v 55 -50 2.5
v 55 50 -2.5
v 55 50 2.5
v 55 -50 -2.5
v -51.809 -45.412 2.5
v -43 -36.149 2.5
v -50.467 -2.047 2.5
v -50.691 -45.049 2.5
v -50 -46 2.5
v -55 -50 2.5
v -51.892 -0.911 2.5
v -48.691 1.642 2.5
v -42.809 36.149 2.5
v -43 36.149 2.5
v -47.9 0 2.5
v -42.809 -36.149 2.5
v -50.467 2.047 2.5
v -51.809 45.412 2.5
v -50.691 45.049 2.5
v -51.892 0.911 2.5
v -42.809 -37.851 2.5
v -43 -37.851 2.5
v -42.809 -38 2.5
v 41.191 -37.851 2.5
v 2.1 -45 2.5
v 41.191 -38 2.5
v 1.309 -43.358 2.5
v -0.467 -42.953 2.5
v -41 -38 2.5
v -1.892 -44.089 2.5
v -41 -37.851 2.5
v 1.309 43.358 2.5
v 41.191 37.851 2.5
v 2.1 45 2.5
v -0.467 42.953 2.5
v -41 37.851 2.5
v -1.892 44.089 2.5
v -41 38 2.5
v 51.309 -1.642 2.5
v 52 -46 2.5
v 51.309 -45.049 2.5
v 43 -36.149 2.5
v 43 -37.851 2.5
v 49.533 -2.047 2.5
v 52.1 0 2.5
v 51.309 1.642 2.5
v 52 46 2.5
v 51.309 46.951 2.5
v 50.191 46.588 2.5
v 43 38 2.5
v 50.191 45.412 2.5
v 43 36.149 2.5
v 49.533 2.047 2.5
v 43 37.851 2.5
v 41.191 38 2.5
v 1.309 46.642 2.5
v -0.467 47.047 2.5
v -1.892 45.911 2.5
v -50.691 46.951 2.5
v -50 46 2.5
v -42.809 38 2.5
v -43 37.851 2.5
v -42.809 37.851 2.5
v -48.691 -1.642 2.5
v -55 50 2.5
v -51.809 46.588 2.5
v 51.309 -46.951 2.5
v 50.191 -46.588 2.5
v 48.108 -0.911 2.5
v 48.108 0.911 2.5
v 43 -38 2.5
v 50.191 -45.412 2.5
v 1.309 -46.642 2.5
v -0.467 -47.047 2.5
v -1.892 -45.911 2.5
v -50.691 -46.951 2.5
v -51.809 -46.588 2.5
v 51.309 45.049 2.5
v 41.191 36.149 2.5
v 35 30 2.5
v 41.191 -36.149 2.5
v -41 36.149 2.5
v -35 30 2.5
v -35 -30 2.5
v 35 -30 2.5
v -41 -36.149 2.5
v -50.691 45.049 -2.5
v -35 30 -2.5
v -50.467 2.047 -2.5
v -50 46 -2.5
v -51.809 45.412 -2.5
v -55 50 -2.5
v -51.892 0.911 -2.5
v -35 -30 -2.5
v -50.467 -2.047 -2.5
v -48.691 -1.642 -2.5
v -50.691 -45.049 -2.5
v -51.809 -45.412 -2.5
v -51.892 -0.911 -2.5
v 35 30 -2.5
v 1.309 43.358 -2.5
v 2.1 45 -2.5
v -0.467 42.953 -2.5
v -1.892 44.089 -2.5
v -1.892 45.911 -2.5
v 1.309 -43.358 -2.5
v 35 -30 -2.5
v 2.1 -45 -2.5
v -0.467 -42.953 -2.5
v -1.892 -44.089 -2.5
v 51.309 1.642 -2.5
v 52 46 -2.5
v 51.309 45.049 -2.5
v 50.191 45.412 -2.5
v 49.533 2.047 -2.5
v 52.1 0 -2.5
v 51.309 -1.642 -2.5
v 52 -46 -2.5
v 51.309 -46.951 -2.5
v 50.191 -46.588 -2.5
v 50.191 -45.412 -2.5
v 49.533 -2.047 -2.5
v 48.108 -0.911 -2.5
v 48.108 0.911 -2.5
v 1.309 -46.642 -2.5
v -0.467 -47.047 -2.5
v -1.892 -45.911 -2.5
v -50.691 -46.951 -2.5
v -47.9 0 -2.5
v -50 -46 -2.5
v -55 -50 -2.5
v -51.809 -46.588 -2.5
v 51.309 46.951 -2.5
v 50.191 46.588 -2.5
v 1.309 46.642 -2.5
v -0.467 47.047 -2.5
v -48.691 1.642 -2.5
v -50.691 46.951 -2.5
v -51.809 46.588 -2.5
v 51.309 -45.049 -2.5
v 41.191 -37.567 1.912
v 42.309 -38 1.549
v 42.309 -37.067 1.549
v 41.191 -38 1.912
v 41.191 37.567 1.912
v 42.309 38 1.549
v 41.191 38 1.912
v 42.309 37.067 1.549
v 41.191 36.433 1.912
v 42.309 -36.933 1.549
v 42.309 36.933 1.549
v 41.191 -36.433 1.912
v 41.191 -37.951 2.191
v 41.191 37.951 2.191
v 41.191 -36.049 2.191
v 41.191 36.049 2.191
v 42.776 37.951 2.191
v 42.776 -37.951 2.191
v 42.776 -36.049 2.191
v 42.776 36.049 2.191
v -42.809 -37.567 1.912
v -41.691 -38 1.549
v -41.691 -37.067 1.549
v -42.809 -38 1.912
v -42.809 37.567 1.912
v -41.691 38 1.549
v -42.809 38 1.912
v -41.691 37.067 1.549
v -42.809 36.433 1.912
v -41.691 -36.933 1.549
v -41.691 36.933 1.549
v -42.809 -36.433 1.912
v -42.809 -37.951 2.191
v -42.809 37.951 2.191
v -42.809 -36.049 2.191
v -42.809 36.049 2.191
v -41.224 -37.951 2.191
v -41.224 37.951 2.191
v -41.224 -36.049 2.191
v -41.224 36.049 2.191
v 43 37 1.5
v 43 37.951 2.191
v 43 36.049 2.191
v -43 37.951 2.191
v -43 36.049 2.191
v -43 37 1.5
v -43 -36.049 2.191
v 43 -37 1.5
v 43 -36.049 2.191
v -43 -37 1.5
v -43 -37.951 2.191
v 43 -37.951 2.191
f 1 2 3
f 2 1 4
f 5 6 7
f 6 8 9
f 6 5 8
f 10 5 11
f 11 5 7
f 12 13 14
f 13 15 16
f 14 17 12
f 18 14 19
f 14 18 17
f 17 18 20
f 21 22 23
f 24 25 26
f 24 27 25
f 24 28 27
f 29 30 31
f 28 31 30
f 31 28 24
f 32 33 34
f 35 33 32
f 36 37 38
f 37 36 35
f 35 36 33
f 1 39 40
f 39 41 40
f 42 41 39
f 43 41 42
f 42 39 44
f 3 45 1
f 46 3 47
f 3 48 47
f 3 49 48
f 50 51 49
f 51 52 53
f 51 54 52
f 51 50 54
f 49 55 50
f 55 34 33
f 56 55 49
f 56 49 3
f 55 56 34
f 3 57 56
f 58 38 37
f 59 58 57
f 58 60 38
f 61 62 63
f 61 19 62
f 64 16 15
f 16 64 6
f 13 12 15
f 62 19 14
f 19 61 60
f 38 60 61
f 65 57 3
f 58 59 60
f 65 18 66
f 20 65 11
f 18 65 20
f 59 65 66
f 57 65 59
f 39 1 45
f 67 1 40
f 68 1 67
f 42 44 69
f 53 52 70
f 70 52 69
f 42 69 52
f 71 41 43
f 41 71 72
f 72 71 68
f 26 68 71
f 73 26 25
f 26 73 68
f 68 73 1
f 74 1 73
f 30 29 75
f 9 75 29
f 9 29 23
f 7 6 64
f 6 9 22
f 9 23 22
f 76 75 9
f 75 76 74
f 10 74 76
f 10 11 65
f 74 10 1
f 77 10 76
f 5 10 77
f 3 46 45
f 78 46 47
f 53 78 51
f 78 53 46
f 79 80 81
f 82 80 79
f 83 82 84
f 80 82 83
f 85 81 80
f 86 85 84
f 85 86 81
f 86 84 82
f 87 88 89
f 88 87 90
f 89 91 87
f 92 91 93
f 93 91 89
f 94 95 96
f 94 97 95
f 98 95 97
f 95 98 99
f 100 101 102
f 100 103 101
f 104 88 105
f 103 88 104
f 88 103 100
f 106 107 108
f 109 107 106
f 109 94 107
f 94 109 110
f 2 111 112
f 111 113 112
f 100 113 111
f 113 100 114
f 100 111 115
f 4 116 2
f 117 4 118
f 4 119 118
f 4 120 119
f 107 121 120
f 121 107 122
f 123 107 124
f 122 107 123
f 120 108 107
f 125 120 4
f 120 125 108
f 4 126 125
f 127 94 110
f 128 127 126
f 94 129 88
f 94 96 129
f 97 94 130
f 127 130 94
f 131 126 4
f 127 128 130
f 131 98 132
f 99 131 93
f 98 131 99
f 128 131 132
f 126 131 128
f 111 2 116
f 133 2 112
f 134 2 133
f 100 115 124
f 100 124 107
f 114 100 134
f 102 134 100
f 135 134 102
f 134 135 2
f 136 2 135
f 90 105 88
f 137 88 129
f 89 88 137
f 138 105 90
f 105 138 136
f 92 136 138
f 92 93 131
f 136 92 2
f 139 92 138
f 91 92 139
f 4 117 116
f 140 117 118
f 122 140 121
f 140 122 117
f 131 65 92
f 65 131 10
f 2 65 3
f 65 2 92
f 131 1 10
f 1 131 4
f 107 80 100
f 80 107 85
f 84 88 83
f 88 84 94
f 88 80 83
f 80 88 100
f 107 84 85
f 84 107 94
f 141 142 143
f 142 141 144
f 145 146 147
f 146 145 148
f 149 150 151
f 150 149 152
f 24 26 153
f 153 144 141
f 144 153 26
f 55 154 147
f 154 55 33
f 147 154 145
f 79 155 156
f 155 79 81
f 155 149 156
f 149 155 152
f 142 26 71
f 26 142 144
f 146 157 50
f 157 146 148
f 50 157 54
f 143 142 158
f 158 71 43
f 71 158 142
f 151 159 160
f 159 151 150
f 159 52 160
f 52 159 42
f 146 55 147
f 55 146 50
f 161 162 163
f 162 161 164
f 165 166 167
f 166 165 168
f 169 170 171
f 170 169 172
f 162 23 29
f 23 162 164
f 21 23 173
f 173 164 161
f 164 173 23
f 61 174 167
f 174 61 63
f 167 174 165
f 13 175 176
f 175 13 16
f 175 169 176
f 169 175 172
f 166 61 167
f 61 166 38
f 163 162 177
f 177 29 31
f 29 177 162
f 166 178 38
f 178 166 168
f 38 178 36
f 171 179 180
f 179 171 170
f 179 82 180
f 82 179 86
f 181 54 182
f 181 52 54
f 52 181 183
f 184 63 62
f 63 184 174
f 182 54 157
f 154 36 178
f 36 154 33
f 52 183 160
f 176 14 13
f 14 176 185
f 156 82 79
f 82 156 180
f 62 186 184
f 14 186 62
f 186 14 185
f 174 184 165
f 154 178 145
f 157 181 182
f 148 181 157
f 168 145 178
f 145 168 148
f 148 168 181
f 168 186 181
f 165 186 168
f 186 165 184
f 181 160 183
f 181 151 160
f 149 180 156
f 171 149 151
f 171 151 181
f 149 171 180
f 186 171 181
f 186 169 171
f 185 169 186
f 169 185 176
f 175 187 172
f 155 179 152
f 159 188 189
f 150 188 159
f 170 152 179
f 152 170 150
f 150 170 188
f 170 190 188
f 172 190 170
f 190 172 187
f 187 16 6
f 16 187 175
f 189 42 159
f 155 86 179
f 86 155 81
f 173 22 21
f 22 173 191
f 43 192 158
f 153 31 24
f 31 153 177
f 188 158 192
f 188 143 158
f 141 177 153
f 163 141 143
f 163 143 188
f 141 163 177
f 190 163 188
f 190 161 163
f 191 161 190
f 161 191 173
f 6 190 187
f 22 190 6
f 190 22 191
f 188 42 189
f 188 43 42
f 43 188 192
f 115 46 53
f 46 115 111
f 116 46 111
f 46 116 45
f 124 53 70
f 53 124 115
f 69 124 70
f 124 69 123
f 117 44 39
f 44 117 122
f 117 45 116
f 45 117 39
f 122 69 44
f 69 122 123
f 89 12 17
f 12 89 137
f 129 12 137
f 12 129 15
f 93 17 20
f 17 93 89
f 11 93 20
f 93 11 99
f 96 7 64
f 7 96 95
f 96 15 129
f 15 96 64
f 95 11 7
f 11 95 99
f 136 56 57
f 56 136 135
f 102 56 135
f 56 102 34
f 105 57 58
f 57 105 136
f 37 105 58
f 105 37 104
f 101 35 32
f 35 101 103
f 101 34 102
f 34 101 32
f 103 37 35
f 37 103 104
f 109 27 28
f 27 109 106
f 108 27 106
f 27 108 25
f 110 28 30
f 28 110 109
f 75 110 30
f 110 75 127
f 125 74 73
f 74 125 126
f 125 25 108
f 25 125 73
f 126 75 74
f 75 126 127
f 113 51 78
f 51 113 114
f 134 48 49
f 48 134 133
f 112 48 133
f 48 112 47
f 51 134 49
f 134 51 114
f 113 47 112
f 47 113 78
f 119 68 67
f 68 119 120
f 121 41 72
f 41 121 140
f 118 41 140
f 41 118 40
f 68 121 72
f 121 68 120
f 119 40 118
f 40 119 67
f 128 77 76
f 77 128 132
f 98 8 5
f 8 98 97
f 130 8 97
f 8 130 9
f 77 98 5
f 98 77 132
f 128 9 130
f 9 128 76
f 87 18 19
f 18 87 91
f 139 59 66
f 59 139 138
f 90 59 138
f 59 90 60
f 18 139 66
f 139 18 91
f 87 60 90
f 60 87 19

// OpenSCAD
//Lid

module metal_lid(x,y,s_d, or_rad)
{
   difference(){
    difference(){
     difference(){
      difference(){ 
       difference(){
        difference(){
         difference(){
          difference(){ 
           difference(){
            difference(){
             difference(){
              difference(){
               difference(){
                difference(){
        cube([x,y,5], center = true);
        
        cube ([x-40,y-40,6], center = true);
        }
        
        //o ring holder
    
    translate([x/2-13,0,2.5]) 
    rotate([90,0,0])  
    cylinder(r=or_rad,h=(y-24), center=true);
}                  
    translate([-(x/2-13),0,2.5])
    rotate([90,0,0])
    cylinder(r=or_rad,h=(y-24), center=true);
}   
    translate([0,y/2-13,2.5])  
    rotate([0,90,0])
    cylinder(r=or_rad,h=(y-14), center=true);
}

    translate([0,-(y/2-13),2.5])   
    rotate([0,90,0])
    cylinder(r=or_rad,h=(y-14), center=true);

 }
    
 
  //screws holes for quartz
 //1
 translate([x/2-5,0,0])
 cylinder(r=s_d/2,h=6, center=true);
 }
//2
  translate([-(x/2-5),0,0])
 cylinder(r=s_d/2,h=6, center=true);
}
//3
translate([0,(y/2-5),0])
 cylinder(r=s_d/2,h=6, center=true);
}
//4
translate([0,-(y/2-5),0])
 cylinder(r=s_d/2,h=6, center=true);

}
    

}
//guide holes for screwing
//1
translate([x/2-4,y/2-4,0])
cylinder(r=1,h=6, center = true);
}
//2
translate([x/2-4,-(y/2-4),0])
cylinder(r=1,h=6, center = true);
}
//3
translate([-(x/2-4),-(y/2-4),0])
cylinder(r=1,h=6, center = true);
}
//4
translate([-(x/2-4),(y/2-4),0])
cylinder(r=1,h=6, center = true);
}

}

metal_lid(110,100,4.2,1);
